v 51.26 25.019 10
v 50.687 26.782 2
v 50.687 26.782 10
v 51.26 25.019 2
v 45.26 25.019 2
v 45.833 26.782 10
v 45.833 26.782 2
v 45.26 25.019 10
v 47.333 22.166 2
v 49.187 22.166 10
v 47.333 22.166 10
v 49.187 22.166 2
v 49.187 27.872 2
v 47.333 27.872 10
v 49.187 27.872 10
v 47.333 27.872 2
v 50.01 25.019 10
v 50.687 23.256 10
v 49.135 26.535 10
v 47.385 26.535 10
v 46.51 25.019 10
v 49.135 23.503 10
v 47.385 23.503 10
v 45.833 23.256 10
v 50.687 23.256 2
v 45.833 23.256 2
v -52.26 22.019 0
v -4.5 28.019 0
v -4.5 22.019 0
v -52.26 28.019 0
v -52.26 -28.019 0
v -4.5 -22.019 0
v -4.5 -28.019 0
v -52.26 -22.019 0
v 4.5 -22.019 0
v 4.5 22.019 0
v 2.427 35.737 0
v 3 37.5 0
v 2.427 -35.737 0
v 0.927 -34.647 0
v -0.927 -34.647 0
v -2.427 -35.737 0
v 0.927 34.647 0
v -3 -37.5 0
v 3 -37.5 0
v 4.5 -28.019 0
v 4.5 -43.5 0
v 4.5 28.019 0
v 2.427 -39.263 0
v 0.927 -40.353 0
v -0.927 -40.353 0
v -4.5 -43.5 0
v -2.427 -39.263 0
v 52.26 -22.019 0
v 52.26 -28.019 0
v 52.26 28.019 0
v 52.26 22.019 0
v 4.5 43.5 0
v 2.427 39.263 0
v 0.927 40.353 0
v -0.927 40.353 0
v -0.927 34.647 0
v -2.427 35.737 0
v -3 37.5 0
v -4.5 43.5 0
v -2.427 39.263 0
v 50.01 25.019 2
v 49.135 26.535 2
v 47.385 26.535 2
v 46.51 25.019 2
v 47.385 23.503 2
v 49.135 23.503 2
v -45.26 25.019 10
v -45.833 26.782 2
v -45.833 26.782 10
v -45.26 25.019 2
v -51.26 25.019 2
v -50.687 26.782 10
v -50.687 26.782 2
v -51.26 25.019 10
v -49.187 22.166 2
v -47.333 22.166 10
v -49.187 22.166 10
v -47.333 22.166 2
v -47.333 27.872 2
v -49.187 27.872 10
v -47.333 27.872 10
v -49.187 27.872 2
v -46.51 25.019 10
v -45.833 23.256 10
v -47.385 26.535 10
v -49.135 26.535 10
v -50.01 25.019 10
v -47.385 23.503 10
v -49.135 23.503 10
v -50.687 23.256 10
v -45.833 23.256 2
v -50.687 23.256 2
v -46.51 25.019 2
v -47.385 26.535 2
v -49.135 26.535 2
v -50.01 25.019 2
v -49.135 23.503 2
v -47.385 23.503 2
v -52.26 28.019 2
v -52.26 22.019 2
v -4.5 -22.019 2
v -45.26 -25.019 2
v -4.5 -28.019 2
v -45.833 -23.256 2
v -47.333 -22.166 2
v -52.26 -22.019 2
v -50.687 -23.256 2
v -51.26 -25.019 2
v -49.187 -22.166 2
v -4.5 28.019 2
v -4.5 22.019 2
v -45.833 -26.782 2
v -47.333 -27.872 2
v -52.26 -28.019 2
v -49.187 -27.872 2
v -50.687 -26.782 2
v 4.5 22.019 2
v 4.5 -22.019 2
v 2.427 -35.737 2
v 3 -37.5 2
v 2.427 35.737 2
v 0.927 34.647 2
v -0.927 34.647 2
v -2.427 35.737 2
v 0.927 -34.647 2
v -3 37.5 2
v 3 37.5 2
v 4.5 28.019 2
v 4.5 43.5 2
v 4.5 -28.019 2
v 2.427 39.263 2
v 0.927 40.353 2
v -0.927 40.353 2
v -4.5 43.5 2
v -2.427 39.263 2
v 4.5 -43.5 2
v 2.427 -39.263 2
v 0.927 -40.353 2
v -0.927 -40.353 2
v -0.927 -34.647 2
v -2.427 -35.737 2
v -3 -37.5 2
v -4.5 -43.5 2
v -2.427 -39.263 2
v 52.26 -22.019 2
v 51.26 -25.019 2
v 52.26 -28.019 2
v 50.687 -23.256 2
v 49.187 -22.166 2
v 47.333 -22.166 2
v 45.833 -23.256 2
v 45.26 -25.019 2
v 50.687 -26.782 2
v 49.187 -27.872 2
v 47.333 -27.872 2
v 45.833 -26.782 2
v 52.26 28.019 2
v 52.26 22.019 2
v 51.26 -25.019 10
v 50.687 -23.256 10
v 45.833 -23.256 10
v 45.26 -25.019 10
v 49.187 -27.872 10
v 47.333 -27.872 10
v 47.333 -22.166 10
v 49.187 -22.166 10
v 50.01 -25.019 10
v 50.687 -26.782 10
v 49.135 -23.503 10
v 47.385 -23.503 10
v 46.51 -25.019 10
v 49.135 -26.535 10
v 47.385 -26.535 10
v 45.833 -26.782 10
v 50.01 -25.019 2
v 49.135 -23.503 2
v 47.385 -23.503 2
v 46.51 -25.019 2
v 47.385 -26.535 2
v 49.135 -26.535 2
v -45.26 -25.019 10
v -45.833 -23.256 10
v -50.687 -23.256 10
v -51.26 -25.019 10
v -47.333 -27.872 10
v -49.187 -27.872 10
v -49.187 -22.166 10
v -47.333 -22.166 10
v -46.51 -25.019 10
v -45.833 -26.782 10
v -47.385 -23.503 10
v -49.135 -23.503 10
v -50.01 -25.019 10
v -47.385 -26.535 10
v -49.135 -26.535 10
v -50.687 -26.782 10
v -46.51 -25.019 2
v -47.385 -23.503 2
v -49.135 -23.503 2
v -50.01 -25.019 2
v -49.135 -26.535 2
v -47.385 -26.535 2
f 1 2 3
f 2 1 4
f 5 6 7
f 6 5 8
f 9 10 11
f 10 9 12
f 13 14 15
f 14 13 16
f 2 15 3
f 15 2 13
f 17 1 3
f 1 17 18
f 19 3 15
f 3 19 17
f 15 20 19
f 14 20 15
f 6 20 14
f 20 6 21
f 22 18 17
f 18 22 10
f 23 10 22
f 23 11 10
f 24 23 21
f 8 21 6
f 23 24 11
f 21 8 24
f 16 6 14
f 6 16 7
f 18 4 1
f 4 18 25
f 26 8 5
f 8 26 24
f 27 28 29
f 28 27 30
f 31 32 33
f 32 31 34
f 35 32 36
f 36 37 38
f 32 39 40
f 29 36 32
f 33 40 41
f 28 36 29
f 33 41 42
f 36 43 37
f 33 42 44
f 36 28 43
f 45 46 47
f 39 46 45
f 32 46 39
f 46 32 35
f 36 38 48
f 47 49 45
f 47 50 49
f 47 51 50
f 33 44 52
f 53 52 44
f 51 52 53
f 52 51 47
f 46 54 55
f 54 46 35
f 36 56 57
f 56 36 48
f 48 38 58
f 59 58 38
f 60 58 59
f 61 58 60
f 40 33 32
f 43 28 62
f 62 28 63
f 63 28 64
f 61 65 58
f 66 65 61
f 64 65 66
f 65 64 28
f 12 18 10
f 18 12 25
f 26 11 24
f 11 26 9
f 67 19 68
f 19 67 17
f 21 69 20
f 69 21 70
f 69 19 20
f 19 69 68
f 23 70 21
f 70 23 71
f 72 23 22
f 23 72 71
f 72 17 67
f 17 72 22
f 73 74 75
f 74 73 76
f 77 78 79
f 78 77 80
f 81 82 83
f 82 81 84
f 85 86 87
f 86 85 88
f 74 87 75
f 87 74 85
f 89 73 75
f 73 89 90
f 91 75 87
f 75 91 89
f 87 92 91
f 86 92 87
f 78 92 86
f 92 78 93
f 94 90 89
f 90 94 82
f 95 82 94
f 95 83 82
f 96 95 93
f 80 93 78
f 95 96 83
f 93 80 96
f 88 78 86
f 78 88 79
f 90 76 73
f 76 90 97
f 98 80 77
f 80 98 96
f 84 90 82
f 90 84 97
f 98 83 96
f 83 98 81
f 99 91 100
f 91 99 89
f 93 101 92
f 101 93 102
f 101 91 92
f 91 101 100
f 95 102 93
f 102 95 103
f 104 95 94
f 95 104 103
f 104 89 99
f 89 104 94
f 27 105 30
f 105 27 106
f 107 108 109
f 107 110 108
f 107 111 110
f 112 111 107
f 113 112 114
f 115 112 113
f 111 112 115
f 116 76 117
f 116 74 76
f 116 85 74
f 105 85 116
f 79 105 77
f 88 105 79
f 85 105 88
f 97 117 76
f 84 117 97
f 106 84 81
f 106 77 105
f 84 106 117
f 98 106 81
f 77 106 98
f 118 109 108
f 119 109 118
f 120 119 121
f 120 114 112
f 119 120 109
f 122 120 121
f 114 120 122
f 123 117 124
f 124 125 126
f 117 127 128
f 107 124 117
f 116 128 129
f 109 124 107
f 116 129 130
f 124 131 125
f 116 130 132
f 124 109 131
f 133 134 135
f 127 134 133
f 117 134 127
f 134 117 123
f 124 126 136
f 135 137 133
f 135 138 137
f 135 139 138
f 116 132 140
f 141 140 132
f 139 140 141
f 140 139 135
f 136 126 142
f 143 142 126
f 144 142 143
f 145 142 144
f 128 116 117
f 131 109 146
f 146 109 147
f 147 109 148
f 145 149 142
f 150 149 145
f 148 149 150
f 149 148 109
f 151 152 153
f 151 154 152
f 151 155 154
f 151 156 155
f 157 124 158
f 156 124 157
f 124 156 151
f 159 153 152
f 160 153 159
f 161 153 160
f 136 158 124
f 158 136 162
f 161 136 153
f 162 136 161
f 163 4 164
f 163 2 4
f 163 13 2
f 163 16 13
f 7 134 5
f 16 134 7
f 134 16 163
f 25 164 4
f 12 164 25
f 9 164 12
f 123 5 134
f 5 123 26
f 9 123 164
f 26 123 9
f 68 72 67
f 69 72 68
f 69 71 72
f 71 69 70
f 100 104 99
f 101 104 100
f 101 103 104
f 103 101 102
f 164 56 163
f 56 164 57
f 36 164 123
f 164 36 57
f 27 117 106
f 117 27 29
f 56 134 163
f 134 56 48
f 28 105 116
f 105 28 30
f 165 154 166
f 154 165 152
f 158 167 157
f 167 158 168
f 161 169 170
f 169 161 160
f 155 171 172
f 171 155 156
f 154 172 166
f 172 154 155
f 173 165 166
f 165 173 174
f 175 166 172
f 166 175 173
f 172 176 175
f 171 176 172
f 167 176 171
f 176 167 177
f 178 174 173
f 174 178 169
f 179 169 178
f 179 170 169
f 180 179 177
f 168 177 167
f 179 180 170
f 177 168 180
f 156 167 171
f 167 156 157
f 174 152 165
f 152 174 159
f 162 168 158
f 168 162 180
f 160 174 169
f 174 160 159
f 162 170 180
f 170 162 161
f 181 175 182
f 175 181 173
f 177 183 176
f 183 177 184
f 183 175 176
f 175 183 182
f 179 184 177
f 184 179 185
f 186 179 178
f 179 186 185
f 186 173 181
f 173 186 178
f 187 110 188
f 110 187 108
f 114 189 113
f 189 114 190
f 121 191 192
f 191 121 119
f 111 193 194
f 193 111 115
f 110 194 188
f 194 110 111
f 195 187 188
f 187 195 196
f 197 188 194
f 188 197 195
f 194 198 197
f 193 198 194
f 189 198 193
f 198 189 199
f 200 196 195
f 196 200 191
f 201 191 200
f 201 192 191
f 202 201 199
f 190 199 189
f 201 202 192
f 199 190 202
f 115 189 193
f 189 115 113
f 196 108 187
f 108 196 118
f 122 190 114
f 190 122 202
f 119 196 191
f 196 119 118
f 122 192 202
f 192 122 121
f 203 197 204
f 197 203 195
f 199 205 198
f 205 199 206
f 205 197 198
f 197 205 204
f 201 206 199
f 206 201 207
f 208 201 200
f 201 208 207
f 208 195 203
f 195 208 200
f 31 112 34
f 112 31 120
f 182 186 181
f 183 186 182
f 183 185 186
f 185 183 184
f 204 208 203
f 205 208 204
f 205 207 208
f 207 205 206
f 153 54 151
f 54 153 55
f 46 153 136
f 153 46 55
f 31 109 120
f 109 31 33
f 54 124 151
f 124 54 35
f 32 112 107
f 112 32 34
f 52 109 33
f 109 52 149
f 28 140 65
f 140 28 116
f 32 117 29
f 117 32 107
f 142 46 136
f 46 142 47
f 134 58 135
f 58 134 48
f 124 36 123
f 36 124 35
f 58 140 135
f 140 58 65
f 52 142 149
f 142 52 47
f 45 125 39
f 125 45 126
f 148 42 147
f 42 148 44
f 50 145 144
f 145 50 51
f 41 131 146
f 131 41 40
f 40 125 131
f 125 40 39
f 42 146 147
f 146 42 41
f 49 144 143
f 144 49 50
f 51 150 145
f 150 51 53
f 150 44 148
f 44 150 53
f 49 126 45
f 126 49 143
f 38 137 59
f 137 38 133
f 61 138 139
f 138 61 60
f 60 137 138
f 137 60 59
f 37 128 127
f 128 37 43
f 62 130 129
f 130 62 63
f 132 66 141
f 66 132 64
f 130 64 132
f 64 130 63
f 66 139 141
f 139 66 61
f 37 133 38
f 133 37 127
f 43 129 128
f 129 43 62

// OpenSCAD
union() {
	translate(v = [0, 25.0190000000, 0]) {
		union() {
			translate(v = [0, 0, 1.0000000000]) {
				cube(center = true, size = [104.5200000000, 6.0000000000, 2]);
			}
			translate(v = [48.2600000000, 0, 0]) {
				difference() {
					cylinder(d = 6, h = 10);
					cylinder(d = 3.5000000000, h = 10);
				}
			}
			translate(v = [-48.2600000000, 0, 0]) {
				difference() {
					cylinder(d = 6, h = 10);
					cylinder(d = 3.5000000000, h = 10);
				}
			}
		}
	}
	translate(v = [0, -25.0190000000, 0]) {
		union() {
			translate(v = [0, 0, 1.0000000000]) {
				cube(center = true, size = [104.5200000000, 6.0000000000, 2]);
			}
			translate(v = [48.2600000000, 0, 0]) {
				difference() {
					cylinder(d = 6, h = 10);
					cylinder(d = 3.5000000000, h = 10);
				}
			}
			translate(v = [-48.2600000000, 0, 0]) {
				difference() {
					cylinder(d = 6, h = 10);
					cylinder(d = 3.5000000000, h = 10);
				}
			}
		}
	}
	difference() {
		translate(v = [0, 0, 1.0000000000]) {
			cube(center = true, size = [9.0000000000, 87, 2]);
		}
		translate(v = [0, -37.5000000000, 0]) {
			cylinder(d = 6, h = 10);
		}
		translate(v = [0, 37.5000000000, 0]) {
			cylinder(d = 6, h = 10);
		}
	}
}
